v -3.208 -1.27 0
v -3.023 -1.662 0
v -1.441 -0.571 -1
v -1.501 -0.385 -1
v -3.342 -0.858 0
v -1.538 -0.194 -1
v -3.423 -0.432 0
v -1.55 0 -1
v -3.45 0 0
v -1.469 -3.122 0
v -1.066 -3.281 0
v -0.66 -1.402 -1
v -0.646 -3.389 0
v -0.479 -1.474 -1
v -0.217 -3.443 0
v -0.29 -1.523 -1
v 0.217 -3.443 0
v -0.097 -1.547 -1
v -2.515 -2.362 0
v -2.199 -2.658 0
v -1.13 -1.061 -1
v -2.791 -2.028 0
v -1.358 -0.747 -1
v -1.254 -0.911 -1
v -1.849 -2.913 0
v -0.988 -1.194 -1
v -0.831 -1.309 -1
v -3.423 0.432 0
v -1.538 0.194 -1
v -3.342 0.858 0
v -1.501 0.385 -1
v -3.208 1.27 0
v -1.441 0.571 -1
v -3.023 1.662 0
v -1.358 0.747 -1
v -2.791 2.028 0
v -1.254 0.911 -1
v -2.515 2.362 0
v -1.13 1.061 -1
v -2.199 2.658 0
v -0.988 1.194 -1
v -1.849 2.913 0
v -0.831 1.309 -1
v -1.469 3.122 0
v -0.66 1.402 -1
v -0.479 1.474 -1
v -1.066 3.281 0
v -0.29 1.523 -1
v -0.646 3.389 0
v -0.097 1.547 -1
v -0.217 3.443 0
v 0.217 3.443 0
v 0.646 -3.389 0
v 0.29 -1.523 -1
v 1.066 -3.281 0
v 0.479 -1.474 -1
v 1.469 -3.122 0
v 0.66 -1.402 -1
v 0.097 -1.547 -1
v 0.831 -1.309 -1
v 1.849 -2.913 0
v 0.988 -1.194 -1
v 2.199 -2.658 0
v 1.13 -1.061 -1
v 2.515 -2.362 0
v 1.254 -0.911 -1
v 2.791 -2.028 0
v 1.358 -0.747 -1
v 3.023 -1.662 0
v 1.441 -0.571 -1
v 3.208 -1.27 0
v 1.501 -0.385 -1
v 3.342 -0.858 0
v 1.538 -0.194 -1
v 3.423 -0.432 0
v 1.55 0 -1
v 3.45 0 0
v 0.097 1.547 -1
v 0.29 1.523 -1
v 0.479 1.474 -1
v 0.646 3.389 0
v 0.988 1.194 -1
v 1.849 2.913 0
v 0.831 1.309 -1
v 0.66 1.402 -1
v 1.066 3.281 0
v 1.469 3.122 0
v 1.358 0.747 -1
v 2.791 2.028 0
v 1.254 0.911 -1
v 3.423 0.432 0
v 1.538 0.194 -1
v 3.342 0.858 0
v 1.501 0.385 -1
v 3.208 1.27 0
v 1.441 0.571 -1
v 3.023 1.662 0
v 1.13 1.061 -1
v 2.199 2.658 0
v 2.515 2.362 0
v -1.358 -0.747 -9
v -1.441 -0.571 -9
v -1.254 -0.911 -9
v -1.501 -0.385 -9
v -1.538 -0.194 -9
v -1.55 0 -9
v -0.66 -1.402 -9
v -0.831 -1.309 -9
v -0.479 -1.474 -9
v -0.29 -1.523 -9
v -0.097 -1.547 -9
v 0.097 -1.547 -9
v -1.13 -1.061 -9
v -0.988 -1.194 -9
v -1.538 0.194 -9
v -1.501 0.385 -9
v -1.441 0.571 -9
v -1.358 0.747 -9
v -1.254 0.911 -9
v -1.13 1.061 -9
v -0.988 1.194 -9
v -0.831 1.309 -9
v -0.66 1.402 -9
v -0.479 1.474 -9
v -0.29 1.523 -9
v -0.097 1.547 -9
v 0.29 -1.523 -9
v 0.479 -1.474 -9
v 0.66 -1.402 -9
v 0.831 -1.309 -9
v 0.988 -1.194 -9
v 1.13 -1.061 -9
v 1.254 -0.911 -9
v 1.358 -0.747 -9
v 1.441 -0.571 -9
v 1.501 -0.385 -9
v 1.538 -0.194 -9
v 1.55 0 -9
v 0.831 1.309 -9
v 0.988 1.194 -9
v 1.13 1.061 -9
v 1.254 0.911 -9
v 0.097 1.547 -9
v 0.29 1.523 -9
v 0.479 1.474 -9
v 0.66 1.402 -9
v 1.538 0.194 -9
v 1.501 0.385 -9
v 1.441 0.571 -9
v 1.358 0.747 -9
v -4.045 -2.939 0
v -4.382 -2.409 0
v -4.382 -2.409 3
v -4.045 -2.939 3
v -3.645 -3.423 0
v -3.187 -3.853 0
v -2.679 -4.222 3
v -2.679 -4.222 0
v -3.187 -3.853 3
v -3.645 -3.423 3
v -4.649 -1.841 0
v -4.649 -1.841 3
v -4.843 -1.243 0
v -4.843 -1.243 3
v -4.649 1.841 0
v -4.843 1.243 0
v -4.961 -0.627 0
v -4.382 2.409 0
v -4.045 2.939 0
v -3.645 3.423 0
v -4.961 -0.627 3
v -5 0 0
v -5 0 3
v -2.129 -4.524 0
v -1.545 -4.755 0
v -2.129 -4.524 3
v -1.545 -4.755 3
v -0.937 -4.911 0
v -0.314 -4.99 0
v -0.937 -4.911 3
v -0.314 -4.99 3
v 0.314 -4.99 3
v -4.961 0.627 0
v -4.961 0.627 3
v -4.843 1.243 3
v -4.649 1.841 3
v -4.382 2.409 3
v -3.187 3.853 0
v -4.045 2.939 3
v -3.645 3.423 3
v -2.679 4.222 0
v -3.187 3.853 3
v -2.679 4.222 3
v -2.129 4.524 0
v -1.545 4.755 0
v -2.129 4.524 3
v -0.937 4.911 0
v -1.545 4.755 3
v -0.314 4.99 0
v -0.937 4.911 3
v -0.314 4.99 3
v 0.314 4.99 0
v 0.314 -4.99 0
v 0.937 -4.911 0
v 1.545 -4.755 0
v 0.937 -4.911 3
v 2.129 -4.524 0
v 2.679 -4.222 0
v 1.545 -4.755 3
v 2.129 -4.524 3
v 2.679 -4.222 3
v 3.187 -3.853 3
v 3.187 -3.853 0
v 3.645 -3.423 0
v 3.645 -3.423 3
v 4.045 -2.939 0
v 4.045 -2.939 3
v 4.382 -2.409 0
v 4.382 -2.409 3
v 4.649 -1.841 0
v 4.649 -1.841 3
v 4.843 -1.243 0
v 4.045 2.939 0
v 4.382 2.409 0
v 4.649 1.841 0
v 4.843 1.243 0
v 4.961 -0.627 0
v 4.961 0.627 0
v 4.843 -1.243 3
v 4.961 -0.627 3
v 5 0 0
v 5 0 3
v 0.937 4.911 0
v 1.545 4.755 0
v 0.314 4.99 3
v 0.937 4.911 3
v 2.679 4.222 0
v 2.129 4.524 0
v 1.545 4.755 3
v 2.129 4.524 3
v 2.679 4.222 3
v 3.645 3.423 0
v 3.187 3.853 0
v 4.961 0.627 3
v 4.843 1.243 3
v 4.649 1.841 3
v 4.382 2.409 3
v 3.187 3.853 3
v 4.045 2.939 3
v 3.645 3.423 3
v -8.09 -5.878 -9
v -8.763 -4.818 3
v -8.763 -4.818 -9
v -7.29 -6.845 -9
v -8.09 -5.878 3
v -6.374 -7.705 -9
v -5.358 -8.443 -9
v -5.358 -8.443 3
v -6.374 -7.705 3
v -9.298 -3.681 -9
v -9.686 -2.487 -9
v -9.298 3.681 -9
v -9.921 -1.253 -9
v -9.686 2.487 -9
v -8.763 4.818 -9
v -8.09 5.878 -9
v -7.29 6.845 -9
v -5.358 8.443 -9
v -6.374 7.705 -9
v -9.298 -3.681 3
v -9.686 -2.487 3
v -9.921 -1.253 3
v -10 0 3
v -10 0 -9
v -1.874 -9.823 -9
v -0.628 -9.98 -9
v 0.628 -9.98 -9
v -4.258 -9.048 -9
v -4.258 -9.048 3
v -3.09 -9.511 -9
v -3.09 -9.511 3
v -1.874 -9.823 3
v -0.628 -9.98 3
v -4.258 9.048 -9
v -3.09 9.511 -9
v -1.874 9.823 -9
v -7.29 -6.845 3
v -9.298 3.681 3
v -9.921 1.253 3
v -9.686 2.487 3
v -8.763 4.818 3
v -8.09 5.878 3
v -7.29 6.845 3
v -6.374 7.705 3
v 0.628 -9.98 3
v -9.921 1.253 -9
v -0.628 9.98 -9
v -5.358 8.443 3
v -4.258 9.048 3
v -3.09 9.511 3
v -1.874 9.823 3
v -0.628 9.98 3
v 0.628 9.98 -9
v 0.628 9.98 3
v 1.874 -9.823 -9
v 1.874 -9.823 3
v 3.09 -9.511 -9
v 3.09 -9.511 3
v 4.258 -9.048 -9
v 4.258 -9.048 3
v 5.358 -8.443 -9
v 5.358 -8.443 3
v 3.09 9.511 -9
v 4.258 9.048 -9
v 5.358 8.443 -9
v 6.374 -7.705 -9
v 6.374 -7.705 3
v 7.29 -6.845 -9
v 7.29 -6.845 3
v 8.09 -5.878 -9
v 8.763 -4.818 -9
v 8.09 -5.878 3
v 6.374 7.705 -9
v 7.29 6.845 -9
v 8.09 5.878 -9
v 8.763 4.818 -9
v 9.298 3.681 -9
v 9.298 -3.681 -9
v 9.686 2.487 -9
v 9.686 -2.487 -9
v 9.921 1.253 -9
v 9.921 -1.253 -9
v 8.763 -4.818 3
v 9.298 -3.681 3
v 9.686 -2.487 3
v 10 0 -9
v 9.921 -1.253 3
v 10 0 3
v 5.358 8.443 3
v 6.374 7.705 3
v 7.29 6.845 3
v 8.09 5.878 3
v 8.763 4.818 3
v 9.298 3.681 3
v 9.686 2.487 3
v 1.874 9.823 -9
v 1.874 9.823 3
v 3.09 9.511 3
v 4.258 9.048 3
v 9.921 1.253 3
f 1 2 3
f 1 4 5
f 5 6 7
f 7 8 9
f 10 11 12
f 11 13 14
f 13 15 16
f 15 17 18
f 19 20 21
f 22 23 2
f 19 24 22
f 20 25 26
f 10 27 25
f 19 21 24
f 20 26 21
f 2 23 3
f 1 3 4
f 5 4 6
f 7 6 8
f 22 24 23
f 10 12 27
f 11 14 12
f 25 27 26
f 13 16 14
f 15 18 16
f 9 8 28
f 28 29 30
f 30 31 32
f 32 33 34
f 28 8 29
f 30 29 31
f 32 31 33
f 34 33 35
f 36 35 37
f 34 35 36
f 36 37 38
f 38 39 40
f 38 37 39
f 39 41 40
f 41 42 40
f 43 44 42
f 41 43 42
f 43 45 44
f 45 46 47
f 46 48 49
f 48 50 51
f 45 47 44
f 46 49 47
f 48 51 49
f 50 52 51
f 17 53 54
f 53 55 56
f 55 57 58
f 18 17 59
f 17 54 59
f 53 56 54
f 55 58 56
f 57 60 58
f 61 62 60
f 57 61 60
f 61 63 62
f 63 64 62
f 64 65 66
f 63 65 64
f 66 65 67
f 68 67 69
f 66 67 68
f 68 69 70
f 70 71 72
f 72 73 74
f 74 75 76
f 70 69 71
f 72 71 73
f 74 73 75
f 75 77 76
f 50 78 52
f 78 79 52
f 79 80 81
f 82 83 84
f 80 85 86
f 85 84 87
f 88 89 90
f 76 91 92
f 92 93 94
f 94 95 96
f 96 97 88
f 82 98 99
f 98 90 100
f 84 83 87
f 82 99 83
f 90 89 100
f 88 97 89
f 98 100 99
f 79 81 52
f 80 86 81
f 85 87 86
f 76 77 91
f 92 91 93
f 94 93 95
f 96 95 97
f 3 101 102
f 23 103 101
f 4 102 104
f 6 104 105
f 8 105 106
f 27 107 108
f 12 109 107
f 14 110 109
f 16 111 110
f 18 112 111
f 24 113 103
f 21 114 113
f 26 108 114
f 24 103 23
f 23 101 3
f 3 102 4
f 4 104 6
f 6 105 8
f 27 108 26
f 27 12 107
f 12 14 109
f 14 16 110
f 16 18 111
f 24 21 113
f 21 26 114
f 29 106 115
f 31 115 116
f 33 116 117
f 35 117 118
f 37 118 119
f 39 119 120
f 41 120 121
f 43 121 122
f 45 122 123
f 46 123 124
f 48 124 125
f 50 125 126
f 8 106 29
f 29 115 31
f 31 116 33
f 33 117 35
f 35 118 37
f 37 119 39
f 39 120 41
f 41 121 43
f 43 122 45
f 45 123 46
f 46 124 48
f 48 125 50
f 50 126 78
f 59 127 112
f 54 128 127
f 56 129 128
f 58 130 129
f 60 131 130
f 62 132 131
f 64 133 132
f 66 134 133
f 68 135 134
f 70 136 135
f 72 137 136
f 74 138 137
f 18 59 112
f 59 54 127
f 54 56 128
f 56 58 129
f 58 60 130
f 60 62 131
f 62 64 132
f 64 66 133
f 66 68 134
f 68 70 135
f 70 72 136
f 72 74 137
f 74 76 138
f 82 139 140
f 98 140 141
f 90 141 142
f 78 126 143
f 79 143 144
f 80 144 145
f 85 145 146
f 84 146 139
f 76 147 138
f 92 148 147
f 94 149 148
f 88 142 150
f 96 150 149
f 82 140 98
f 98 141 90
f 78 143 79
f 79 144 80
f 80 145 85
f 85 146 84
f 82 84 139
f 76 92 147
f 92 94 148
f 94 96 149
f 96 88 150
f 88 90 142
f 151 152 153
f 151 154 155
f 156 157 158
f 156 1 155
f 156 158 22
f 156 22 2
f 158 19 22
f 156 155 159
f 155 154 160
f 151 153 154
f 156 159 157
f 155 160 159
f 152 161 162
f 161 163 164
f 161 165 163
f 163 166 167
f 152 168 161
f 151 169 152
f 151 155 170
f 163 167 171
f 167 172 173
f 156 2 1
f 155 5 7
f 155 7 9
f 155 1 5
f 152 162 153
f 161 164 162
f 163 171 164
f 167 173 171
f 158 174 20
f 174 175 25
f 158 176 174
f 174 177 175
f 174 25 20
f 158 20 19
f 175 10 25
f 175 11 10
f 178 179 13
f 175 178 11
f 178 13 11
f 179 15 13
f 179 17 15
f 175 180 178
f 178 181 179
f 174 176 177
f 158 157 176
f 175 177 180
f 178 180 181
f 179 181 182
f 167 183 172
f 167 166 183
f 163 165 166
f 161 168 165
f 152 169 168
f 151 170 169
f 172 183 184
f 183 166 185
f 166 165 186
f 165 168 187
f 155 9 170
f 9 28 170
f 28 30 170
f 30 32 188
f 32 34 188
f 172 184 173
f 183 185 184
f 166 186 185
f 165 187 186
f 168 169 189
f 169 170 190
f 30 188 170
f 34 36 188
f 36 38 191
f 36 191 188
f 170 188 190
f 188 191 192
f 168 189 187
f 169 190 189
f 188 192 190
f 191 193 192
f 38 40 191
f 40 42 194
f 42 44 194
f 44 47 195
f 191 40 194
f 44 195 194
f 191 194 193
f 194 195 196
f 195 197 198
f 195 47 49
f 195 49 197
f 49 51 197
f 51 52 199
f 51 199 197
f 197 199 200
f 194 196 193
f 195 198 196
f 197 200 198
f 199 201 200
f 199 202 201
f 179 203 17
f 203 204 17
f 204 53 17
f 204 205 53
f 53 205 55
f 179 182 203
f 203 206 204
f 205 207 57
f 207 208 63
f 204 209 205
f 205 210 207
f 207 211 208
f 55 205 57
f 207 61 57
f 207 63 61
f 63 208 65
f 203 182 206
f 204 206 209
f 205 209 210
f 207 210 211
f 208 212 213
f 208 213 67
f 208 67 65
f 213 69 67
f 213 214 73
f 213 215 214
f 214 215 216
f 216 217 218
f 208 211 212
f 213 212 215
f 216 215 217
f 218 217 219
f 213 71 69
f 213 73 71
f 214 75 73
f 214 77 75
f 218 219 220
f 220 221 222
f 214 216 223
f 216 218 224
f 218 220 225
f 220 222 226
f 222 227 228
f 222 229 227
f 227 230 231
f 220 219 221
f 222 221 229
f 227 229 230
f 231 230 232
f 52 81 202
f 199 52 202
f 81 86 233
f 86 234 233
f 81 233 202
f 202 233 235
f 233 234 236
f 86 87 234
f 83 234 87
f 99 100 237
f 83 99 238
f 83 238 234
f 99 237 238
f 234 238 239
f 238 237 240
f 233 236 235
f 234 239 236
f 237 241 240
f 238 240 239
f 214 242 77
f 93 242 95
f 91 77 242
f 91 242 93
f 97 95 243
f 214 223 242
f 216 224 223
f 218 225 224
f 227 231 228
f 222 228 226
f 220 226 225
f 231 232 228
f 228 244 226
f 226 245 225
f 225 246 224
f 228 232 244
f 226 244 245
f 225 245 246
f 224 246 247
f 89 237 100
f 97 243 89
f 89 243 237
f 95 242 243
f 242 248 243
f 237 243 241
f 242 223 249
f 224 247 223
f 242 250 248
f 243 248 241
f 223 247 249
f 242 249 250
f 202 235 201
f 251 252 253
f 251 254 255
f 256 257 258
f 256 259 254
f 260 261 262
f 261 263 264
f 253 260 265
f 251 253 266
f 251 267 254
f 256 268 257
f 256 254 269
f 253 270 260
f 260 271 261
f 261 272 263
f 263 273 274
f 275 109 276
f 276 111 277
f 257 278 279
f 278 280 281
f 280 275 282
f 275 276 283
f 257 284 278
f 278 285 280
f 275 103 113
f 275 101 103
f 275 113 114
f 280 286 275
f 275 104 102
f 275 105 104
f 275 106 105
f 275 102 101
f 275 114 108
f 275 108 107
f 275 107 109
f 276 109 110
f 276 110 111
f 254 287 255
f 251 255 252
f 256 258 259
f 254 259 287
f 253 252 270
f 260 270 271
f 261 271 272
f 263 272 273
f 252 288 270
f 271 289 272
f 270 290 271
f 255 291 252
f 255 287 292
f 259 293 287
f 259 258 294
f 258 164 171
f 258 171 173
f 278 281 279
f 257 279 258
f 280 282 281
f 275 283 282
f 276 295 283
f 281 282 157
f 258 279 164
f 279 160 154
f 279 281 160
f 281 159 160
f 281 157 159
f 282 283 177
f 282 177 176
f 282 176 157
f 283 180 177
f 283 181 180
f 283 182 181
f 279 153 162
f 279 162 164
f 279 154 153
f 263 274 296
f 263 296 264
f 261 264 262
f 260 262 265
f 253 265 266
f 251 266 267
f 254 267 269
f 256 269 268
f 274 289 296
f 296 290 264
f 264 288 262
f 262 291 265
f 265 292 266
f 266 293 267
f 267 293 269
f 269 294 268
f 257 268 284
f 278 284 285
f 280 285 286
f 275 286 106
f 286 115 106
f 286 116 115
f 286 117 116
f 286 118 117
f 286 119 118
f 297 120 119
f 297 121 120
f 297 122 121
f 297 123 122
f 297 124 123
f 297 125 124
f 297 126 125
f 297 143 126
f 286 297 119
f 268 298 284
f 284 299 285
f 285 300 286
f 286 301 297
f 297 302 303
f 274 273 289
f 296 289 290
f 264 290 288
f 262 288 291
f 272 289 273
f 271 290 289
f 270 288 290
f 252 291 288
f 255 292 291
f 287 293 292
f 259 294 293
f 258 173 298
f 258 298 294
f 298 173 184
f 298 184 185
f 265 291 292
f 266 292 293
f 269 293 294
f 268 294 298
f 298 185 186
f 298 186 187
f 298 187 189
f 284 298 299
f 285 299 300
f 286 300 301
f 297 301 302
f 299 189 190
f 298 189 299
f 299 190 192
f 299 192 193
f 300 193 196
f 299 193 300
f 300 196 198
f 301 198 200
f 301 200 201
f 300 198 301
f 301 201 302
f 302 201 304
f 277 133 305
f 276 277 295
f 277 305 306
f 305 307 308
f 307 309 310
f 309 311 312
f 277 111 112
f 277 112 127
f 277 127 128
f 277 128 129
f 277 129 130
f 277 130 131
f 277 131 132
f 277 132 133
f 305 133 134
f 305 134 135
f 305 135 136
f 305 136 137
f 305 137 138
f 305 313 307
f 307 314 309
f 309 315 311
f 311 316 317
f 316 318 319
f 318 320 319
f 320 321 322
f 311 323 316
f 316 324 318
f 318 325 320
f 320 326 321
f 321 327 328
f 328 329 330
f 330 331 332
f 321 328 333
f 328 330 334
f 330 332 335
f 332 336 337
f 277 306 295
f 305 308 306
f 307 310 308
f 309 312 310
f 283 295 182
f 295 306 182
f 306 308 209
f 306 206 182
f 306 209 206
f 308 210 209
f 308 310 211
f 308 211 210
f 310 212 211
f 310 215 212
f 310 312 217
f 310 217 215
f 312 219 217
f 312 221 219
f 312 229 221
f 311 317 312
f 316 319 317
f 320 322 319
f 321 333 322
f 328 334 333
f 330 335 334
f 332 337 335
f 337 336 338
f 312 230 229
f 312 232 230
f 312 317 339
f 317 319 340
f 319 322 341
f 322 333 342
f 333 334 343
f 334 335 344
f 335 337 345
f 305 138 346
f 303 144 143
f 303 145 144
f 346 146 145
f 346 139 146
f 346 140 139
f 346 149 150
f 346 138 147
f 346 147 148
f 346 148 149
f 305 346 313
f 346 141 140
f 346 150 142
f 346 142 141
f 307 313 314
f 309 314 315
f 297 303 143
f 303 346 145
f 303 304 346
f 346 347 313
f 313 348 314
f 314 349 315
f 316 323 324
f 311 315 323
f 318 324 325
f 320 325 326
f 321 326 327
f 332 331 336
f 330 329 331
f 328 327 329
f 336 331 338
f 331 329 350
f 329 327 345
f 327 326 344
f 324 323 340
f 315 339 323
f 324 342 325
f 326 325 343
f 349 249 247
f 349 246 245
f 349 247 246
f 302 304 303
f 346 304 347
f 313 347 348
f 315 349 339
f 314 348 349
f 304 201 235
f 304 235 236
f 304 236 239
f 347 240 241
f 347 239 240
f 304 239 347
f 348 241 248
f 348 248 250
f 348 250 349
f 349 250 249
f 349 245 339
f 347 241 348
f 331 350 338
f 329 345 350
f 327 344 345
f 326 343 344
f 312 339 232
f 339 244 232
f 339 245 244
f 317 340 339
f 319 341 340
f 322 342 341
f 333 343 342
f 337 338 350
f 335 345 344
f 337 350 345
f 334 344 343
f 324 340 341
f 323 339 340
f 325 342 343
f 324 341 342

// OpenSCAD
$fn = 50;

difference() {
	union() {
		translate(v = [0, 0, -9.0]) {
			cylinder(h = 12, r = 10.0);
		}
	}
	union() {
		translate(v = [0, 0, 0]) {
			rotate(a = [0, 0, 0]) {
				difference() {
					union() {
						translate(v = [0, 0, -12.0]) {
							cylinder(h = 12, r = 1.25);
						}
						translate(v = [0, 0, -1.0]) {
							cylinder(h = 1.0, r1 = 1.55, r2 = 3.45);
						}
						translate(v = [0, 0, -12.0]) {
							cylinder(h = 12, r = 1.55);
						}
						translate(v = [0, 0, -12.0]) {
							cylinder(h = 12, r = 1.25);
						}
					}
					union();
				}
			}
		}
		#cylinder(h = 3, r = 5.0);
	}
}
